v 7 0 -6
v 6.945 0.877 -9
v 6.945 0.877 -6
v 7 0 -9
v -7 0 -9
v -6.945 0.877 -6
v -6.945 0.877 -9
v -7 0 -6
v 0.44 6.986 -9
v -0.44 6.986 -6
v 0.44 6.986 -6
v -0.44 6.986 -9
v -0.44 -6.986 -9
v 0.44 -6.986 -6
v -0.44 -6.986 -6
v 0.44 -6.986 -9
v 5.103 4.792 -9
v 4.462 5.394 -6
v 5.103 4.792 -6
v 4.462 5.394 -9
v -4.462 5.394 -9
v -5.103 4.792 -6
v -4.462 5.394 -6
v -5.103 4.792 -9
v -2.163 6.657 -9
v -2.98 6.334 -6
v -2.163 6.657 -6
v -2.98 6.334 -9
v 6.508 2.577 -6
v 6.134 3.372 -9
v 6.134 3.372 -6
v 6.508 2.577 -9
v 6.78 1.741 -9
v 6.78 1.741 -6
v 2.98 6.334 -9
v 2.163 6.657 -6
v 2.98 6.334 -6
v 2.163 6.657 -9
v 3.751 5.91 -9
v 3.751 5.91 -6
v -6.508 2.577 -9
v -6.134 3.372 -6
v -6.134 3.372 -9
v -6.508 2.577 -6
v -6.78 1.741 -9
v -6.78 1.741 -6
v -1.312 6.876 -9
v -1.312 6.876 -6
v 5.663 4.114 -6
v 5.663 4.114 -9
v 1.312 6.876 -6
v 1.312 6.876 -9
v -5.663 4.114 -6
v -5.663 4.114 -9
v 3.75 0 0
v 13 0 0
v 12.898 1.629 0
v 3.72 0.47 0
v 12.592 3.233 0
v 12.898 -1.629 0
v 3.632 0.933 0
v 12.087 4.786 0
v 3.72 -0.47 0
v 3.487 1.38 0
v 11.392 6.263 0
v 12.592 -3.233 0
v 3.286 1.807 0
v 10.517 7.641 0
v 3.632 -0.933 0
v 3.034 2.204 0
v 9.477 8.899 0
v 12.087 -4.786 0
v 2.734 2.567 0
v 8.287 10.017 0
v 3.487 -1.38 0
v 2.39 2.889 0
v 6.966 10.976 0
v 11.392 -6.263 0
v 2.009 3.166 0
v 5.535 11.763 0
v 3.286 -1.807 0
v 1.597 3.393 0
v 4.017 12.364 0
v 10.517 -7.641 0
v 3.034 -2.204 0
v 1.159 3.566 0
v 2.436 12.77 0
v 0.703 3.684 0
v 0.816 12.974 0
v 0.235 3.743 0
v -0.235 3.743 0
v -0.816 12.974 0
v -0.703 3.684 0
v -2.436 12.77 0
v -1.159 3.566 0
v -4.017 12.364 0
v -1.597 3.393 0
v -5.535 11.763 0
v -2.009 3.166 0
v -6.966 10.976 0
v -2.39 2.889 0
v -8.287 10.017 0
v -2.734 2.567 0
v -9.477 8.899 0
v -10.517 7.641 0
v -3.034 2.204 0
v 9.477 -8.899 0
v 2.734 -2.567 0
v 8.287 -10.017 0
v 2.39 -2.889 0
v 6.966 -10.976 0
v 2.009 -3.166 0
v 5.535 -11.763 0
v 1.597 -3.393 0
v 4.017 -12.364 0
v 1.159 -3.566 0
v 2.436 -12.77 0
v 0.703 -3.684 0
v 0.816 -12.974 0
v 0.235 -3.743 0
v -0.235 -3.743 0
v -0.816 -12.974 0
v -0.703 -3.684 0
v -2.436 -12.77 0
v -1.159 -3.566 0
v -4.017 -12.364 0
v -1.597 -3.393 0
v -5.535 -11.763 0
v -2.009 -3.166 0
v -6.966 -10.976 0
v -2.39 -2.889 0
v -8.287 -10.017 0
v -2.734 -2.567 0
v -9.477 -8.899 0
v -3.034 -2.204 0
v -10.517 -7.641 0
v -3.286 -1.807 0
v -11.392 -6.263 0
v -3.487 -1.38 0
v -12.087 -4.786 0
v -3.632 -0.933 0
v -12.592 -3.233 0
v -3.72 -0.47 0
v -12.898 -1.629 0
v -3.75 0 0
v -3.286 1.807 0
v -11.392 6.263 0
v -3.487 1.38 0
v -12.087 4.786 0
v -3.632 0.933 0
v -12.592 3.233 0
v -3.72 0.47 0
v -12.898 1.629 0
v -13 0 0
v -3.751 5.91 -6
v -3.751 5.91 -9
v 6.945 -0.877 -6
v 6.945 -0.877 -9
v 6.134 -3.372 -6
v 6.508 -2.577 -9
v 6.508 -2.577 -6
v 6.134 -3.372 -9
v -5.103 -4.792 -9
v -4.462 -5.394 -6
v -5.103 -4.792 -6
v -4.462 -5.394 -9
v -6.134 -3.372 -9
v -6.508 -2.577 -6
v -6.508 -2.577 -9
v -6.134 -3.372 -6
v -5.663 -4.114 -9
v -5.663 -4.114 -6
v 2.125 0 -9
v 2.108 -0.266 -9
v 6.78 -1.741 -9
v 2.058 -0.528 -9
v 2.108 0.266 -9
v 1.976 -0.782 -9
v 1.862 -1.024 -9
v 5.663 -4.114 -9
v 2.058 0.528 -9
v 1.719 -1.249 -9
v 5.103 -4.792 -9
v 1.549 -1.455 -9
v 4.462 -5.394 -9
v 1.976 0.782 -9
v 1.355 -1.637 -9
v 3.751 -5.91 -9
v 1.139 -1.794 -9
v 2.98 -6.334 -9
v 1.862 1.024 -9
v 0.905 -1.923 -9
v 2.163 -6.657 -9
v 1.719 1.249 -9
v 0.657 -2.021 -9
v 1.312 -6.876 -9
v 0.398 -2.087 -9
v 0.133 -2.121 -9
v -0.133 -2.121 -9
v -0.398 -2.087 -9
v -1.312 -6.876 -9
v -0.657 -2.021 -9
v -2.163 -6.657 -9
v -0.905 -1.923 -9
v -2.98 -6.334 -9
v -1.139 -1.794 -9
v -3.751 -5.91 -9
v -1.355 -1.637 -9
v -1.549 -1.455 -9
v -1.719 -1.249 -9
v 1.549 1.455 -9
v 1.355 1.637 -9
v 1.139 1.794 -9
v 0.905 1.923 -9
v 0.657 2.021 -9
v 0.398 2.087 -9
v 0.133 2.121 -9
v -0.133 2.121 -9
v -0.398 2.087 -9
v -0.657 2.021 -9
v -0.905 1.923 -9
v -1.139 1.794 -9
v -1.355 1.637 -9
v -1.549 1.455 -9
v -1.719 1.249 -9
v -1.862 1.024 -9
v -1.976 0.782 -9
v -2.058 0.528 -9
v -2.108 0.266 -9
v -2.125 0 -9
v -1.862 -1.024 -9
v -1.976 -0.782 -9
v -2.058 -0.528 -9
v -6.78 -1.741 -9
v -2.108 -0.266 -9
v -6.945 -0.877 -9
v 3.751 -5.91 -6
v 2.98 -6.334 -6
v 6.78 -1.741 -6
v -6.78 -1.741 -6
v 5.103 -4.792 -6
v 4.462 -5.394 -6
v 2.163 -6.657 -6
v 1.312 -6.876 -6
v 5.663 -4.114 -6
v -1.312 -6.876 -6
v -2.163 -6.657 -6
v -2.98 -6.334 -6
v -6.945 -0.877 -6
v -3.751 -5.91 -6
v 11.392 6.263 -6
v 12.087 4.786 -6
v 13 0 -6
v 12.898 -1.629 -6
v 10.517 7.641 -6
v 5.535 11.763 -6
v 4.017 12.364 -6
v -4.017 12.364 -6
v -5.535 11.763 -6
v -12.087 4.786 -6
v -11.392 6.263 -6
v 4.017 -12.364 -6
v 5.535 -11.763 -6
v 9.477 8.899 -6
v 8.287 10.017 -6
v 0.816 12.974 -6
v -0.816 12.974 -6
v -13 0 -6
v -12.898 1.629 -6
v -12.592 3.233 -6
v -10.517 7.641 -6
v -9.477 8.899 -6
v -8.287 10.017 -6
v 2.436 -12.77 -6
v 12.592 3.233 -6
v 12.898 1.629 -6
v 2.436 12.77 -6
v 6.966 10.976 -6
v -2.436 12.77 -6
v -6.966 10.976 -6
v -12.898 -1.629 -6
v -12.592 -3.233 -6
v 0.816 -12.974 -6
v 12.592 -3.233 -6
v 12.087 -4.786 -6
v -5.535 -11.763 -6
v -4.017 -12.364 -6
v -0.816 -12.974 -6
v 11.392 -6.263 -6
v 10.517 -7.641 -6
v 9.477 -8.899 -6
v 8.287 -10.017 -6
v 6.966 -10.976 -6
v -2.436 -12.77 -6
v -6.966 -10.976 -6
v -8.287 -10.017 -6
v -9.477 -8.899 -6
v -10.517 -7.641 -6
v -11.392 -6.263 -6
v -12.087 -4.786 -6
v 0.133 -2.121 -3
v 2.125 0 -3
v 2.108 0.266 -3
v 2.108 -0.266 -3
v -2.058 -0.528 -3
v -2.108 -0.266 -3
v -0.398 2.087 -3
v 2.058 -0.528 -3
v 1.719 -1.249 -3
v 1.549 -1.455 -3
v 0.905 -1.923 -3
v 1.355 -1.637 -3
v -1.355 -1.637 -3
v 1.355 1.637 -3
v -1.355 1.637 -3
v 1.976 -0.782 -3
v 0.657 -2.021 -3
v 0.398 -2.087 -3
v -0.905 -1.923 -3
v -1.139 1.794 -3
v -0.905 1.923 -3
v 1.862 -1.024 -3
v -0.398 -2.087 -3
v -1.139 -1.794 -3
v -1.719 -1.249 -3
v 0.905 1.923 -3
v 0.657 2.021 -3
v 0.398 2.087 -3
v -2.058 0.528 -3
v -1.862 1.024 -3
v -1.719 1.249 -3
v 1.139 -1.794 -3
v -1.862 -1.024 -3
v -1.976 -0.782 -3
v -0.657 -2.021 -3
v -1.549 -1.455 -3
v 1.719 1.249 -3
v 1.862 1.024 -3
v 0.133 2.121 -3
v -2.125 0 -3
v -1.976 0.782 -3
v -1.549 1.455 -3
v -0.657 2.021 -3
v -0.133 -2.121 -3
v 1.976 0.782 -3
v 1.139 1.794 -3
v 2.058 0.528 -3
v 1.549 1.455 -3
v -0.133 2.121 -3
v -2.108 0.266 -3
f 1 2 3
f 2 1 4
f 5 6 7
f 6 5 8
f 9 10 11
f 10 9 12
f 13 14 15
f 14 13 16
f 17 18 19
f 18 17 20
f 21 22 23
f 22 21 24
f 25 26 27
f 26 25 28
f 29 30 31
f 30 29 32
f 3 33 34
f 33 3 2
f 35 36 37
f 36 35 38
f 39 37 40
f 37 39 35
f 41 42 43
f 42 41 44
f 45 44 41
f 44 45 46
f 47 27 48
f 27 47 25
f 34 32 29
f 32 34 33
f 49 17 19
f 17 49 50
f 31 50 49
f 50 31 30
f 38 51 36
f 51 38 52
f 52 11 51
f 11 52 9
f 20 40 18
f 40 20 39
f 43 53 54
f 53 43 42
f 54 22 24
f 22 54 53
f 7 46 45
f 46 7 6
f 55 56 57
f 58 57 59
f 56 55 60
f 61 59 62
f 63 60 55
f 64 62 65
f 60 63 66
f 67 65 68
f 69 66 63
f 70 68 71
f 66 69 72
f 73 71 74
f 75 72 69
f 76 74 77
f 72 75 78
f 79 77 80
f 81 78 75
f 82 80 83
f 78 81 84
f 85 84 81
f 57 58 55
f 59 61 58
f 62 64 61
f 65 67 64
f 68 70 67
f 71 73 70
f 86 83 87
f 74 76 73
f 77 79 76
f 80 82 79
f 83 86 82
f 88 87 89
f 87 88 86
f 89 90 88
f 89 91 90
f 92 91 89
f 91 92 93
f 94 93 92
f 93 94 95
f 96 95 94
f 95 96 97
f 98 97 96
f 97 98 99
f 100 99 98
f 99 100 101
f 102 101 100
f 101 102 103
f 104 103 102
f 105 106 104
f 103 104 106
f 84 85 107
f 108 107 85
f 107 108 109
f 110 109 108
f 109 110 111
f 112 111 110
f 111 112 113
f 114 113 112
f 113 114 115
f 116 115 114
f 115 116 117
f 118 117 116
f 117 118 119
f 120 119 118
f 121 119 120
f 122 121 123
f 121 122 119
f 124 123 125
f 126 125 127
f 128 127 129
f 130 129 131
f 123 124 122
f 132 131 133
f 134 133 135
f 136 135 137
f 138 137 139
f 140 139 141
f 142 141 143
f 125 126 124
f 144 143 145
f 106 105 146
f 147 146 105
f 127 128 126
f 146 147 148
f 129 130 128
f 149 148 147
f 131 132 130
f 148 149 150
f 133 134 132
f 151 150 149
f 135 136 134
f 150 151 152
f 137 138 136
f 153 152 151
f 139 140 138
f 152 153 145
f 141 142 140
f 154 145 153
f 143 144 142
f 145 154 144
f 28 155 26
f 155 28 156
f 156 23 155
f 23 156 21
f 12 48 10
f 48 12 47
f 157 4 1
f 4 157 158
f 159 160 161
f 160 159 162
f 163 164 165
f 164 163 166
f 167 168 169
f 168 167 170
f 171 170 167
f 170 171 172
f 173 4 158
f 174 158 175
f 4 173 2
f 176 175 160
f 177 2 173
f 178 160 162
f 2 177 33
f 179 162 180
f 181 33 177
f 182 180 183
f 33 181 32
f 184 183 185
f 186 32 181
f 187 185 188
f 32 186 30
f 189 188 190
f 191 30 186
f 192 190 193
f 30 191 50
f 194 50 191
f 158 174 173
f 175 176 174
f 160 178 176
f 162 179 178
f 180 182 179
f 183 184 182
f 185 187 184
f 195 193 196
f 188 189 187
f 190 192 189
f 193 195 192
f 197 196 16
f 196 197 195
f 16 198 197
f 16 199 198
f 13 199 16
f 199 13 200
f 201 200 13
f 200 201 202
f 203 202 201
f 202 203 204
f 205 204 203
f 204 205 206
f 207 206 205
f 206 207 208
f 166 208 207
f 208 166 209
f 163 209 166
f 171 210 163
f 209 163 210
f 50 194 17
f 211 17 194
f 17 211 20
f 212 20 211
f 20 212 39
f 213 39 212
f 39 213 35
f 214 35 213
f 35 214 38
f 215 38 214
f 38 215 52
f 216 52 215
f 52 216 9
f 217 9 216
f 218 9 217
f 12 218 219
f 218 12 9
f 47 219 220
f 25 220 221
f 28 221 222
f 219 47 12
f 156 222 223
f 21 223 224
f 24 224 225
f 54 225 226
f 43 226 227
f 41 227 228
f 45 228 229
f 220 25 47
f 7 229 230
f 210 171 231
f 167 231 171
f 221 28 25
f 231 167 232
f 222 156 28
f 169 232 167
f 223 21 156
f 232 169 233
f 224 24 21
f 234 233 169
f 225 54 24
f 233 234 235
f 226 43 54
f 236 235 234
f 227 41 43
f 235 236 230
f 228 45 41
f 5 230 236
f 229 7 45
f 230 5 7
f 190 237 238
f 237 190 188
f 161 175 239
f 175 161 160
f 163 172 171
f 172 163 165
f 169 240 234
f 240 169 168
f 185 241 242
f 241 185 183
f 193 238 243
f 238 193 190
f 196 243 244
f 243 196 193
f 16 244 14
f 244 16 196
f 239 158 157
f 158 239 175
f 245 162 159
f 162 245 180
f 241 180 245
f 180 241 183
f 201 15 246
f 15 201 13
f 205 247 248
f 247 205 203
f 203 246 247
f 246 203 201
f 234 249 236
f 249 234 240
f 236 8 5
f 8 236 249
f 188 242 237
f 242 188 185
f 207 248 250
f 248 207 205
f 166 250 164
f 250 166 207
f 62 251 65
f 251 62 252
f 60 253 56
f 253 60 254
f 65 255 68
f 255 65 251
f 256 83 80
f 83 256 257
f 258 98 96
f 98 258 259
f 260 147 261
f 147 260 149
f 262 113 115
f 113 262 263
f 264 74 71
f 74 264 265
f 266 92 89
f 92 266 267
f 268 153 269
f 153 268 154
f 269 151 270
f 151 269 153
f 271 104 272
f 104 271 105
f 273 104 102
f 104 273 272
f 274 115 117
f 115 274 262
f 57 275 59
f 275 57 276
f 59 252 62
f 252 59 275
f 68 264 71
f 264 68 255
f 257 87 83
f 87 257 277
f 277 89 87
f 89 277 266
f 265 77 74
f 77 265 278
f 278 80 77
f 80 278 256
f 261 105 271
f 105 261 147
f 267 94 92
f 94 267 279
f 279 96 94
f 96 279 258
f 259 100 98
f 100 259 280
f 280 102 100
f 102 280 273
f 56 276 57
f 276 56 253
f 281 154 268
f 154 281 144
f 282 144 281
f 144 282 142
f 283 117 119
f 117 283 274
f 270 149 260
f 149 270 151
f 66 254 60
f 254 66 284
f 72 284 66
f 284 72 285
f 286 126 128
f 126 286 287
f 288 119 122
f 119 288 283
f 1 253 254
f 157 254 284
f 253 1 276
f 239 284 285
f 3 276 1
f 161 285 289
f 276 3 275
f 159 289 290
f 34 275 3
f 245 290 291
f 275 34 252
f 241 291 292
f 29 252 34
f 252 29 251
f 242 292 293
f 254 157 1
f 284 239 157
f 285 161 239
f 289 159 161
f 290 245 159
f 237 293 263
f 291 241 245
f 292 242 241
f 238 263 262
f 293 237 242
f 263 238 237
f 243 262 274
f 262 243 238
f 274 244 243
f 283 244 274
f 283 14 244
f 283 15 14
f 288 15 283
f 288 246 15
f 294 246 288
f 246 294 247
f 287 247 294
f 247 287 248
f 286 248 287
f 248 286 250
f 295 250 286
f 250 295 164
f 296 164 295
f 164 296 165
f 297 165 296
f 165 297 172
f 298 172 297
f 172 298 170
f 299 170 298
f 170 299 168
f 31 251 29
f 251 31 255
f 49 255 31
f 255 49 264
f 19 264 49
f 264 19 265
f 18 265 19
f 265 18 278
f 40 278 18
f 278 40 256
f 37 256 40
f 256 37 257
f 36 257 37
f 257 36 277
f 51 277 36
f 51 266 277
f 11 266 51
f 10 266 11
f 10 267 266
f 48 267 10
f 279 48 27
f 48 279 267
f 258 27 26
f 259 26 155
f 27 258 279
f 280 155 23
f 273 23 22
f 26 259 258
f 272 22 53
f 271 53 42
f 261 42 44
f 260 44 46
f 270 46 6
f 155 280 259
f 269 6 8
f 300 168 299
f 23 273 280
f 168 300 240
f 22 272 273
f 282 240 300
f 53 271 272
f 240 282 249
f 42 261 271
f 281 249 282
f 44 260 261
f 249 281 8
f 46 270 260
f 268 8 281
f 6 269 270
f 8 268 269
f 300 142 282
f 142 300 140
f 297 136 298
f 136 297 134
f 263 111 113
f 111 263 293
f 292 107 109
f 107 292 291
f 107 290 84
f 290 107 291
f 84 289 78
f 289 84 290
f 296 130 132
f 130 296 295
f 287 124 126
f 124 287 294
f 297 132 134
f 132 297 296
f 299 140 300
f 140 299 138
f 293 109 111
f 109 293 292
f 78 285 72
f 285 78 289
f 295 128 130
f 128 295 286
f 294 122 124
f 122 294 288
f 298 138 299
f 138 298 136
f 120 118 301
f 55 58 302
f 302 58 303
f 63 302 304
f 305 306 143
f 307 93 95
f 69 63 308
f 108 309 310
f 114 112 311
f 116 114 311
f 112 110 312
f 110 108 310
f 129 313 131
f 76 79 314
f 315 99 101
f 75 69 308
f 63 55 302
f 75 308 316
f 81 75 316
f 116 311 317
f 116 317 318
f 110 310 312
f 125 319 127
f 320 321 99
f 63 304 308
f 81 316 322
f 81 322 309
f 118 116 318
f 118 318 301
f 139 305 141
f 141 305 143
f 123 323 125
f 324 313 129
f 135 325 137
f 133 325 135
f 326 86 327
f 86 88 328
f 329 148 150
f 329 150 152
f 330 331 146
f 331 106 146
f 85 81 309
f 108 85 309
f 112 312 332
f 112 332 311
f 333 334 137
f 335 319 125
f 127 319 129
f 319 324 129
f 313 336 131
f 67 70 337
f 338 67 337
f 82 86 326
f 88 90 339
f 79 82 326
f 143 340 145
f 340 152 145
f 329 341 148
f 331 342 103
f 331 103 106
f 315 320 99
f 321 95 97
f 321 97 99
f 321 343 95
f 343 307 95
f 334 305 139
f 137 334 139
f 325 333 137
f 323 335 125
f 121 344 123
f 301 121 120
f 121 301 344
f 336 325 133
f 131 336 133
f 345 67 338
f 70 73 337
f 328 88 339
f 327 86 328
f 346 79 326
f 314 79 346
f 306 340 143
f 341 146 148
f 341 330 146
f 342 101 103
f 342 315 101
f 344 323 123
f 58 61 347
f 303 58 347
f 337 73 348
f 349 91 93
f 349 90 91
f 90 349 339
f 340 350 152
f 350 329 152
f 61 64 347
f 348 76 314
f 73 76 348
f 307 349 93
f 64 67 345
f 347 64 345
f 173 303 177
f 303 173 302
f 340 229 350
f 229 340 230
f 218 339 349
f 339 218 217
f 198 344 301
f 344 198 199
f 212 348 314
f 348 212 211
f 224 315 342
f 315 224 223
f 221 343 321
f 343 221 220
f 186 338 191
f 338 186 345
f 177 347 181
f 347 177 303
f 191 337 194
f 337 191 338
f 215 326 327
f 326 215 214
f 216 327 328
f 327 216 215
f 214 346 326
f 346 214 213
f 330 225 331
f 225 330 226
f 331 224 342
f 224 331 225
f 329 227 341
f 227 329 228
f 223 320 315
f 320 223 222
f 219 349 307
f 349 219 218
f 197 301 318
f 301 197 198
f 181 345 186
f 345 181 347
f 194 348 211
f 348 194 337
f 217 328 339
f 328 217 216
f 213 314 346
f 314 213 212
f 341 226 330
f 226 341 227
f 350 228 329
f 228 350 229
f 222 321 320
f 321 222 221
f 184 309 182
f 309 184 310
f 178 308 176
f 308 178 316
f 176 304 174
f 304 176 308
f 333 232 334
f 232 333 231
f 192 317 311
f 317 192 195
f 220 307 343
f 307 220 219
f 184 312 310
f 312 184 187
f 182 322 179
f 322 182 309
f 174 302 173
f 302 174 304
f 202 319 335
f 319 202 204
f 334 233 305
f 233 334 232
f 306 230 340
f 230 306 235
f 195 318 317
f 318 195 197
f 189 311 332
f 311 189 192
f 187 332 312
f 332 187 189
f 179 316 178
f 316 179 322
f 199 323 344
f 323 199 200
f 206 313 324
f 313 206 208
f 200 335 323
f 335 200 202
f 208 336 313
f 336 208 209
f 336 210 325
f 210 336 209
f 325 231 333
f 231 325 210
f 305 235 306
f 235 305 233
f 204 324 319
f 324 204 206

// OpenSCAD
$fn = 50;


difference() {
	union() {
		translate(v = [0, 0, -9.0000000000]) {
			cylinder(h = 9, r = 7.0000000000);
		}
		translate(v = [0, 0, -6.0000000000]) {
			cylinder(h = 6, r = 13.0000000000);
		}
	}
	union() {
		translate(v = [0, 0, 0]) {
			rotate(a = [0, 0, 0]) {
				difference() {
					union() {
						#translate(v = [0, 0, -9.0000000000]) {
							cylinder(h = 9, r = 2.0000000000);
						}
						#translate(v = [0, 0, -3]) {
							cylinder(h = 3, r = 7.0000000000, r1 = 2.1250000000, r2 = 3.7500000000);
						}
						#translate(v = [0, 0, -9.0000000000]) {
							cylinder(h = 9, r = 2.1250000000);
						}
						#translate(v = [0, 0, -9.0000000000]) {
							cylinder(h = 9, r = 2.0000000000);
						}
					}
					union();
				}
			}
		}
	}
}
